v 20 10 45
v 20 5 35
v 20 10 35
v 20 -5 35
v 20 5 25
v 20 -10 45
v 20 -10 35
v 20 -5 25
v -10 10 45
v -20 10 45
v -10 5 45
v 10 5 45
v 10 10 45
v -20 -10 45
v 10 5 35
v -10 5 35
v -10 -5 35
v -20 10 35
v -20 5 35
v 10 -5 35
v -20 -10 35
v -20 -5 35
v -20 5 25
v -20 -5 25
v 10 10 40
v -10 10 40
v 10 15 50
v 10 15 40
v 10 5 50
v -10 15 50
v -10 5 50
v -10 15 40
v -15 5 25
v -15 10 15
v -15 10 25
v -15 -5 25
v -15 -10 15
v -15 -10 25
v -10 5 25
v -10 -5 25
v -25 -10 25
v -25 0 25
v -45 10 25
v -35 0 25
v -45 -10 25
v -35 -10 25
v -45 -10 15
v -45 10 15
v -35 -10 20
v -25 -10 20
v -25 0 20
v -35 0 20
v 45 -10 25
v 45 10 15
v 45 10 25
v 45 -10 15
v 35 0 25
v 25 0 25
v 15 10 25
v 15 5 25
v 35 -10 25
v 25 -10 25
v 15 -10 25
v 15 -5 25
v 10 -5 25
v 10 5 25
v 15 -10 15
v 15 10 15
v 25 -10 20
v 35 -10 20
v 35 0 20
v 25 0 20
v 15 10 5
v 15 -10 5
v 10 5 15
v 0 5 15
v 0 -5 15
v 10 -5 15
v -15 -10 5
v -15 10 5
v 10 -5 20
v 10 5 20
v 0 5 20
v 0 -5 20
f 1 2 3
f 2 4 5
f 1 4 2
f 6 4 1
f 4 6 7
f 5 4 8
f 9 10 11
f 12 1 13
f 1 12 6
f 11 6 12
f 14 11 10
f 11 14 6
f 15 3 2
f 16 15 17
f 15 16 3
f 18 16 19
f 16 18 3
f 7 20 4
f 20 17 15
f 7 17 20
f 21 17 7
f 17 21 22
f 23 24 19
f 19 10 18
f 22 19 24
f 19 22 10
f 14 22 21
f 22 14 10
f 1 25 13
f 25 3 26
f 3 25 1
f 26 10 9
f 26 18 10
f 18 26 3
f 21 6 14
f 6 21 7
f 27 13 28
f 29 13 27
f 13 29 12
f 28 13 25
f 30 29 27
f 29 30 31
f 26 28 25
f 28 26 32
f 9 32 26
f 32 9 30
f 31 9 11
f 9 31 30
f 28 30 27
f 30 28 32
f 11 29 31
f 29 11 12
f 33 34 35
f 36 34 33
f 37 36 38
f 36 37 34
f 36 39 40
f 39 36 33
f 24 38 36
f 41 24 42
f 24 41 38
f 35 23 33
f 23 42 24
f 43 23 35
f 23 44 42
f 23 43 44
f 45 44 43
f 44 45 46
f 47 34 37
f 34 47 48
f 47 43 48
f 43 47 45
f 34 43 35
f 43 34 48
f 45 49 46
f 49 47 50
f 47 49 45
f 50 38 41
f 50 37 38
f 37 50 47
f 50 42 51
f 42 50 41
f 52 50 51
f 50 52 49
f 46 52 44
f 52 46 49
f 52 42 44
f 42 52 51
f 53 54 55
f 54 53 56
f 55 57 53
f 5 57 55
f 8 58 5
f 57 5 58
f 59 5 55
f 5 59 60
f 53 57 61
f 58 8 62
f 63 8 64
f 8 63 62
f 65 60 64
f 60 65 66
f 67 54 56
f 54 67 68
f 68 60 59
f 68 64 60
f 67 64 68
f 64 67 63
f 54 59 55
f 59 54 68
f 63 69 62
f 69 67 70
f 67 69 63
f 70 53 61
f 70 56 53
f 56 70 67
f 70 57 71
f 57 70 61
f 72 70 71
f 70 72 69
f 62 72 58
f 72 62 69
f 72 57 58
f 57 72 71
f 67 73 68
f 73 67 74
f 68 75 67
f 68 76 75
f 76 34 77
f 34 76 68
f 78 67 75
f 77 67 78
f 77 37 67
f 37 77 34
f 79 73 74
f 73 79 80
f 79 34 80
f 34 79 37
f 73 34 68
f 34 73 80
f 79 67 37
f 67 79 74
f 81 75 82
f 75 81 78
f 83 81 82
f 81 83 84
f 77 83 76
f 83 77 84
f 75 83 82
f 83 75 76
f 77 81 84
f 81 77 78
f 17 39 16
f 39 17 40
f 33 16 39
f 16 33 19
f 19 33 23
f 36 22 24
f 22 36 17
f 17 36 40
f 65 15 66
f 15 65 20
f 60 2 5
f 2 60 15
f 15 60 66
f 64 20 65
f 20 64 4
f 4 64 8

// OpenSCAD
// Define dimensions for each component
module central_block() {
    difference() {
        union() {
            // Main rectangular prism
            cube([40, 20, 10], center = true);
            // Protruding section
            translate([0, 10, 5])
                cube([20, 10, 10], center = true);
        }
    }
}

module side_block() {
    difference() {
        // Main rectangular block
        cube([30, 20, 10], center = true);
        // Cutout section
        translate([0, -5, 5])
            cube([10, 10, 10], center = true);
    }
}

module connector_block() {
    union() {
        // Main rectangular block
        cube([30, 20, 10], center = true);
        // Protruding section
        translate([5, 0, 5])
            cube([10, 10, 10], center = true);
    }
}

module spacer_block() {
    // Small rectangular block
    cube([10, 10, 10], center = true);
}

// Assemble the model
module assembly() {
    // Layer 1: Central block
    translate([0, 0, 40])
        central_block();

    // Layer 2: Spacer blocks
    translate([-15, 0, 30])
        spacer_block();
    translate([15, 0, 30])
        spacer_block();

    // Layer 3: Side blocks
    translate([-30, 0, 20])
        side_block();
    translate([30, 0, 20])
        side_block();

    // Layer 4: Connector block
    translate([0, 0, 10])
        connector_block();
}

// Render the assembly
assembly();
